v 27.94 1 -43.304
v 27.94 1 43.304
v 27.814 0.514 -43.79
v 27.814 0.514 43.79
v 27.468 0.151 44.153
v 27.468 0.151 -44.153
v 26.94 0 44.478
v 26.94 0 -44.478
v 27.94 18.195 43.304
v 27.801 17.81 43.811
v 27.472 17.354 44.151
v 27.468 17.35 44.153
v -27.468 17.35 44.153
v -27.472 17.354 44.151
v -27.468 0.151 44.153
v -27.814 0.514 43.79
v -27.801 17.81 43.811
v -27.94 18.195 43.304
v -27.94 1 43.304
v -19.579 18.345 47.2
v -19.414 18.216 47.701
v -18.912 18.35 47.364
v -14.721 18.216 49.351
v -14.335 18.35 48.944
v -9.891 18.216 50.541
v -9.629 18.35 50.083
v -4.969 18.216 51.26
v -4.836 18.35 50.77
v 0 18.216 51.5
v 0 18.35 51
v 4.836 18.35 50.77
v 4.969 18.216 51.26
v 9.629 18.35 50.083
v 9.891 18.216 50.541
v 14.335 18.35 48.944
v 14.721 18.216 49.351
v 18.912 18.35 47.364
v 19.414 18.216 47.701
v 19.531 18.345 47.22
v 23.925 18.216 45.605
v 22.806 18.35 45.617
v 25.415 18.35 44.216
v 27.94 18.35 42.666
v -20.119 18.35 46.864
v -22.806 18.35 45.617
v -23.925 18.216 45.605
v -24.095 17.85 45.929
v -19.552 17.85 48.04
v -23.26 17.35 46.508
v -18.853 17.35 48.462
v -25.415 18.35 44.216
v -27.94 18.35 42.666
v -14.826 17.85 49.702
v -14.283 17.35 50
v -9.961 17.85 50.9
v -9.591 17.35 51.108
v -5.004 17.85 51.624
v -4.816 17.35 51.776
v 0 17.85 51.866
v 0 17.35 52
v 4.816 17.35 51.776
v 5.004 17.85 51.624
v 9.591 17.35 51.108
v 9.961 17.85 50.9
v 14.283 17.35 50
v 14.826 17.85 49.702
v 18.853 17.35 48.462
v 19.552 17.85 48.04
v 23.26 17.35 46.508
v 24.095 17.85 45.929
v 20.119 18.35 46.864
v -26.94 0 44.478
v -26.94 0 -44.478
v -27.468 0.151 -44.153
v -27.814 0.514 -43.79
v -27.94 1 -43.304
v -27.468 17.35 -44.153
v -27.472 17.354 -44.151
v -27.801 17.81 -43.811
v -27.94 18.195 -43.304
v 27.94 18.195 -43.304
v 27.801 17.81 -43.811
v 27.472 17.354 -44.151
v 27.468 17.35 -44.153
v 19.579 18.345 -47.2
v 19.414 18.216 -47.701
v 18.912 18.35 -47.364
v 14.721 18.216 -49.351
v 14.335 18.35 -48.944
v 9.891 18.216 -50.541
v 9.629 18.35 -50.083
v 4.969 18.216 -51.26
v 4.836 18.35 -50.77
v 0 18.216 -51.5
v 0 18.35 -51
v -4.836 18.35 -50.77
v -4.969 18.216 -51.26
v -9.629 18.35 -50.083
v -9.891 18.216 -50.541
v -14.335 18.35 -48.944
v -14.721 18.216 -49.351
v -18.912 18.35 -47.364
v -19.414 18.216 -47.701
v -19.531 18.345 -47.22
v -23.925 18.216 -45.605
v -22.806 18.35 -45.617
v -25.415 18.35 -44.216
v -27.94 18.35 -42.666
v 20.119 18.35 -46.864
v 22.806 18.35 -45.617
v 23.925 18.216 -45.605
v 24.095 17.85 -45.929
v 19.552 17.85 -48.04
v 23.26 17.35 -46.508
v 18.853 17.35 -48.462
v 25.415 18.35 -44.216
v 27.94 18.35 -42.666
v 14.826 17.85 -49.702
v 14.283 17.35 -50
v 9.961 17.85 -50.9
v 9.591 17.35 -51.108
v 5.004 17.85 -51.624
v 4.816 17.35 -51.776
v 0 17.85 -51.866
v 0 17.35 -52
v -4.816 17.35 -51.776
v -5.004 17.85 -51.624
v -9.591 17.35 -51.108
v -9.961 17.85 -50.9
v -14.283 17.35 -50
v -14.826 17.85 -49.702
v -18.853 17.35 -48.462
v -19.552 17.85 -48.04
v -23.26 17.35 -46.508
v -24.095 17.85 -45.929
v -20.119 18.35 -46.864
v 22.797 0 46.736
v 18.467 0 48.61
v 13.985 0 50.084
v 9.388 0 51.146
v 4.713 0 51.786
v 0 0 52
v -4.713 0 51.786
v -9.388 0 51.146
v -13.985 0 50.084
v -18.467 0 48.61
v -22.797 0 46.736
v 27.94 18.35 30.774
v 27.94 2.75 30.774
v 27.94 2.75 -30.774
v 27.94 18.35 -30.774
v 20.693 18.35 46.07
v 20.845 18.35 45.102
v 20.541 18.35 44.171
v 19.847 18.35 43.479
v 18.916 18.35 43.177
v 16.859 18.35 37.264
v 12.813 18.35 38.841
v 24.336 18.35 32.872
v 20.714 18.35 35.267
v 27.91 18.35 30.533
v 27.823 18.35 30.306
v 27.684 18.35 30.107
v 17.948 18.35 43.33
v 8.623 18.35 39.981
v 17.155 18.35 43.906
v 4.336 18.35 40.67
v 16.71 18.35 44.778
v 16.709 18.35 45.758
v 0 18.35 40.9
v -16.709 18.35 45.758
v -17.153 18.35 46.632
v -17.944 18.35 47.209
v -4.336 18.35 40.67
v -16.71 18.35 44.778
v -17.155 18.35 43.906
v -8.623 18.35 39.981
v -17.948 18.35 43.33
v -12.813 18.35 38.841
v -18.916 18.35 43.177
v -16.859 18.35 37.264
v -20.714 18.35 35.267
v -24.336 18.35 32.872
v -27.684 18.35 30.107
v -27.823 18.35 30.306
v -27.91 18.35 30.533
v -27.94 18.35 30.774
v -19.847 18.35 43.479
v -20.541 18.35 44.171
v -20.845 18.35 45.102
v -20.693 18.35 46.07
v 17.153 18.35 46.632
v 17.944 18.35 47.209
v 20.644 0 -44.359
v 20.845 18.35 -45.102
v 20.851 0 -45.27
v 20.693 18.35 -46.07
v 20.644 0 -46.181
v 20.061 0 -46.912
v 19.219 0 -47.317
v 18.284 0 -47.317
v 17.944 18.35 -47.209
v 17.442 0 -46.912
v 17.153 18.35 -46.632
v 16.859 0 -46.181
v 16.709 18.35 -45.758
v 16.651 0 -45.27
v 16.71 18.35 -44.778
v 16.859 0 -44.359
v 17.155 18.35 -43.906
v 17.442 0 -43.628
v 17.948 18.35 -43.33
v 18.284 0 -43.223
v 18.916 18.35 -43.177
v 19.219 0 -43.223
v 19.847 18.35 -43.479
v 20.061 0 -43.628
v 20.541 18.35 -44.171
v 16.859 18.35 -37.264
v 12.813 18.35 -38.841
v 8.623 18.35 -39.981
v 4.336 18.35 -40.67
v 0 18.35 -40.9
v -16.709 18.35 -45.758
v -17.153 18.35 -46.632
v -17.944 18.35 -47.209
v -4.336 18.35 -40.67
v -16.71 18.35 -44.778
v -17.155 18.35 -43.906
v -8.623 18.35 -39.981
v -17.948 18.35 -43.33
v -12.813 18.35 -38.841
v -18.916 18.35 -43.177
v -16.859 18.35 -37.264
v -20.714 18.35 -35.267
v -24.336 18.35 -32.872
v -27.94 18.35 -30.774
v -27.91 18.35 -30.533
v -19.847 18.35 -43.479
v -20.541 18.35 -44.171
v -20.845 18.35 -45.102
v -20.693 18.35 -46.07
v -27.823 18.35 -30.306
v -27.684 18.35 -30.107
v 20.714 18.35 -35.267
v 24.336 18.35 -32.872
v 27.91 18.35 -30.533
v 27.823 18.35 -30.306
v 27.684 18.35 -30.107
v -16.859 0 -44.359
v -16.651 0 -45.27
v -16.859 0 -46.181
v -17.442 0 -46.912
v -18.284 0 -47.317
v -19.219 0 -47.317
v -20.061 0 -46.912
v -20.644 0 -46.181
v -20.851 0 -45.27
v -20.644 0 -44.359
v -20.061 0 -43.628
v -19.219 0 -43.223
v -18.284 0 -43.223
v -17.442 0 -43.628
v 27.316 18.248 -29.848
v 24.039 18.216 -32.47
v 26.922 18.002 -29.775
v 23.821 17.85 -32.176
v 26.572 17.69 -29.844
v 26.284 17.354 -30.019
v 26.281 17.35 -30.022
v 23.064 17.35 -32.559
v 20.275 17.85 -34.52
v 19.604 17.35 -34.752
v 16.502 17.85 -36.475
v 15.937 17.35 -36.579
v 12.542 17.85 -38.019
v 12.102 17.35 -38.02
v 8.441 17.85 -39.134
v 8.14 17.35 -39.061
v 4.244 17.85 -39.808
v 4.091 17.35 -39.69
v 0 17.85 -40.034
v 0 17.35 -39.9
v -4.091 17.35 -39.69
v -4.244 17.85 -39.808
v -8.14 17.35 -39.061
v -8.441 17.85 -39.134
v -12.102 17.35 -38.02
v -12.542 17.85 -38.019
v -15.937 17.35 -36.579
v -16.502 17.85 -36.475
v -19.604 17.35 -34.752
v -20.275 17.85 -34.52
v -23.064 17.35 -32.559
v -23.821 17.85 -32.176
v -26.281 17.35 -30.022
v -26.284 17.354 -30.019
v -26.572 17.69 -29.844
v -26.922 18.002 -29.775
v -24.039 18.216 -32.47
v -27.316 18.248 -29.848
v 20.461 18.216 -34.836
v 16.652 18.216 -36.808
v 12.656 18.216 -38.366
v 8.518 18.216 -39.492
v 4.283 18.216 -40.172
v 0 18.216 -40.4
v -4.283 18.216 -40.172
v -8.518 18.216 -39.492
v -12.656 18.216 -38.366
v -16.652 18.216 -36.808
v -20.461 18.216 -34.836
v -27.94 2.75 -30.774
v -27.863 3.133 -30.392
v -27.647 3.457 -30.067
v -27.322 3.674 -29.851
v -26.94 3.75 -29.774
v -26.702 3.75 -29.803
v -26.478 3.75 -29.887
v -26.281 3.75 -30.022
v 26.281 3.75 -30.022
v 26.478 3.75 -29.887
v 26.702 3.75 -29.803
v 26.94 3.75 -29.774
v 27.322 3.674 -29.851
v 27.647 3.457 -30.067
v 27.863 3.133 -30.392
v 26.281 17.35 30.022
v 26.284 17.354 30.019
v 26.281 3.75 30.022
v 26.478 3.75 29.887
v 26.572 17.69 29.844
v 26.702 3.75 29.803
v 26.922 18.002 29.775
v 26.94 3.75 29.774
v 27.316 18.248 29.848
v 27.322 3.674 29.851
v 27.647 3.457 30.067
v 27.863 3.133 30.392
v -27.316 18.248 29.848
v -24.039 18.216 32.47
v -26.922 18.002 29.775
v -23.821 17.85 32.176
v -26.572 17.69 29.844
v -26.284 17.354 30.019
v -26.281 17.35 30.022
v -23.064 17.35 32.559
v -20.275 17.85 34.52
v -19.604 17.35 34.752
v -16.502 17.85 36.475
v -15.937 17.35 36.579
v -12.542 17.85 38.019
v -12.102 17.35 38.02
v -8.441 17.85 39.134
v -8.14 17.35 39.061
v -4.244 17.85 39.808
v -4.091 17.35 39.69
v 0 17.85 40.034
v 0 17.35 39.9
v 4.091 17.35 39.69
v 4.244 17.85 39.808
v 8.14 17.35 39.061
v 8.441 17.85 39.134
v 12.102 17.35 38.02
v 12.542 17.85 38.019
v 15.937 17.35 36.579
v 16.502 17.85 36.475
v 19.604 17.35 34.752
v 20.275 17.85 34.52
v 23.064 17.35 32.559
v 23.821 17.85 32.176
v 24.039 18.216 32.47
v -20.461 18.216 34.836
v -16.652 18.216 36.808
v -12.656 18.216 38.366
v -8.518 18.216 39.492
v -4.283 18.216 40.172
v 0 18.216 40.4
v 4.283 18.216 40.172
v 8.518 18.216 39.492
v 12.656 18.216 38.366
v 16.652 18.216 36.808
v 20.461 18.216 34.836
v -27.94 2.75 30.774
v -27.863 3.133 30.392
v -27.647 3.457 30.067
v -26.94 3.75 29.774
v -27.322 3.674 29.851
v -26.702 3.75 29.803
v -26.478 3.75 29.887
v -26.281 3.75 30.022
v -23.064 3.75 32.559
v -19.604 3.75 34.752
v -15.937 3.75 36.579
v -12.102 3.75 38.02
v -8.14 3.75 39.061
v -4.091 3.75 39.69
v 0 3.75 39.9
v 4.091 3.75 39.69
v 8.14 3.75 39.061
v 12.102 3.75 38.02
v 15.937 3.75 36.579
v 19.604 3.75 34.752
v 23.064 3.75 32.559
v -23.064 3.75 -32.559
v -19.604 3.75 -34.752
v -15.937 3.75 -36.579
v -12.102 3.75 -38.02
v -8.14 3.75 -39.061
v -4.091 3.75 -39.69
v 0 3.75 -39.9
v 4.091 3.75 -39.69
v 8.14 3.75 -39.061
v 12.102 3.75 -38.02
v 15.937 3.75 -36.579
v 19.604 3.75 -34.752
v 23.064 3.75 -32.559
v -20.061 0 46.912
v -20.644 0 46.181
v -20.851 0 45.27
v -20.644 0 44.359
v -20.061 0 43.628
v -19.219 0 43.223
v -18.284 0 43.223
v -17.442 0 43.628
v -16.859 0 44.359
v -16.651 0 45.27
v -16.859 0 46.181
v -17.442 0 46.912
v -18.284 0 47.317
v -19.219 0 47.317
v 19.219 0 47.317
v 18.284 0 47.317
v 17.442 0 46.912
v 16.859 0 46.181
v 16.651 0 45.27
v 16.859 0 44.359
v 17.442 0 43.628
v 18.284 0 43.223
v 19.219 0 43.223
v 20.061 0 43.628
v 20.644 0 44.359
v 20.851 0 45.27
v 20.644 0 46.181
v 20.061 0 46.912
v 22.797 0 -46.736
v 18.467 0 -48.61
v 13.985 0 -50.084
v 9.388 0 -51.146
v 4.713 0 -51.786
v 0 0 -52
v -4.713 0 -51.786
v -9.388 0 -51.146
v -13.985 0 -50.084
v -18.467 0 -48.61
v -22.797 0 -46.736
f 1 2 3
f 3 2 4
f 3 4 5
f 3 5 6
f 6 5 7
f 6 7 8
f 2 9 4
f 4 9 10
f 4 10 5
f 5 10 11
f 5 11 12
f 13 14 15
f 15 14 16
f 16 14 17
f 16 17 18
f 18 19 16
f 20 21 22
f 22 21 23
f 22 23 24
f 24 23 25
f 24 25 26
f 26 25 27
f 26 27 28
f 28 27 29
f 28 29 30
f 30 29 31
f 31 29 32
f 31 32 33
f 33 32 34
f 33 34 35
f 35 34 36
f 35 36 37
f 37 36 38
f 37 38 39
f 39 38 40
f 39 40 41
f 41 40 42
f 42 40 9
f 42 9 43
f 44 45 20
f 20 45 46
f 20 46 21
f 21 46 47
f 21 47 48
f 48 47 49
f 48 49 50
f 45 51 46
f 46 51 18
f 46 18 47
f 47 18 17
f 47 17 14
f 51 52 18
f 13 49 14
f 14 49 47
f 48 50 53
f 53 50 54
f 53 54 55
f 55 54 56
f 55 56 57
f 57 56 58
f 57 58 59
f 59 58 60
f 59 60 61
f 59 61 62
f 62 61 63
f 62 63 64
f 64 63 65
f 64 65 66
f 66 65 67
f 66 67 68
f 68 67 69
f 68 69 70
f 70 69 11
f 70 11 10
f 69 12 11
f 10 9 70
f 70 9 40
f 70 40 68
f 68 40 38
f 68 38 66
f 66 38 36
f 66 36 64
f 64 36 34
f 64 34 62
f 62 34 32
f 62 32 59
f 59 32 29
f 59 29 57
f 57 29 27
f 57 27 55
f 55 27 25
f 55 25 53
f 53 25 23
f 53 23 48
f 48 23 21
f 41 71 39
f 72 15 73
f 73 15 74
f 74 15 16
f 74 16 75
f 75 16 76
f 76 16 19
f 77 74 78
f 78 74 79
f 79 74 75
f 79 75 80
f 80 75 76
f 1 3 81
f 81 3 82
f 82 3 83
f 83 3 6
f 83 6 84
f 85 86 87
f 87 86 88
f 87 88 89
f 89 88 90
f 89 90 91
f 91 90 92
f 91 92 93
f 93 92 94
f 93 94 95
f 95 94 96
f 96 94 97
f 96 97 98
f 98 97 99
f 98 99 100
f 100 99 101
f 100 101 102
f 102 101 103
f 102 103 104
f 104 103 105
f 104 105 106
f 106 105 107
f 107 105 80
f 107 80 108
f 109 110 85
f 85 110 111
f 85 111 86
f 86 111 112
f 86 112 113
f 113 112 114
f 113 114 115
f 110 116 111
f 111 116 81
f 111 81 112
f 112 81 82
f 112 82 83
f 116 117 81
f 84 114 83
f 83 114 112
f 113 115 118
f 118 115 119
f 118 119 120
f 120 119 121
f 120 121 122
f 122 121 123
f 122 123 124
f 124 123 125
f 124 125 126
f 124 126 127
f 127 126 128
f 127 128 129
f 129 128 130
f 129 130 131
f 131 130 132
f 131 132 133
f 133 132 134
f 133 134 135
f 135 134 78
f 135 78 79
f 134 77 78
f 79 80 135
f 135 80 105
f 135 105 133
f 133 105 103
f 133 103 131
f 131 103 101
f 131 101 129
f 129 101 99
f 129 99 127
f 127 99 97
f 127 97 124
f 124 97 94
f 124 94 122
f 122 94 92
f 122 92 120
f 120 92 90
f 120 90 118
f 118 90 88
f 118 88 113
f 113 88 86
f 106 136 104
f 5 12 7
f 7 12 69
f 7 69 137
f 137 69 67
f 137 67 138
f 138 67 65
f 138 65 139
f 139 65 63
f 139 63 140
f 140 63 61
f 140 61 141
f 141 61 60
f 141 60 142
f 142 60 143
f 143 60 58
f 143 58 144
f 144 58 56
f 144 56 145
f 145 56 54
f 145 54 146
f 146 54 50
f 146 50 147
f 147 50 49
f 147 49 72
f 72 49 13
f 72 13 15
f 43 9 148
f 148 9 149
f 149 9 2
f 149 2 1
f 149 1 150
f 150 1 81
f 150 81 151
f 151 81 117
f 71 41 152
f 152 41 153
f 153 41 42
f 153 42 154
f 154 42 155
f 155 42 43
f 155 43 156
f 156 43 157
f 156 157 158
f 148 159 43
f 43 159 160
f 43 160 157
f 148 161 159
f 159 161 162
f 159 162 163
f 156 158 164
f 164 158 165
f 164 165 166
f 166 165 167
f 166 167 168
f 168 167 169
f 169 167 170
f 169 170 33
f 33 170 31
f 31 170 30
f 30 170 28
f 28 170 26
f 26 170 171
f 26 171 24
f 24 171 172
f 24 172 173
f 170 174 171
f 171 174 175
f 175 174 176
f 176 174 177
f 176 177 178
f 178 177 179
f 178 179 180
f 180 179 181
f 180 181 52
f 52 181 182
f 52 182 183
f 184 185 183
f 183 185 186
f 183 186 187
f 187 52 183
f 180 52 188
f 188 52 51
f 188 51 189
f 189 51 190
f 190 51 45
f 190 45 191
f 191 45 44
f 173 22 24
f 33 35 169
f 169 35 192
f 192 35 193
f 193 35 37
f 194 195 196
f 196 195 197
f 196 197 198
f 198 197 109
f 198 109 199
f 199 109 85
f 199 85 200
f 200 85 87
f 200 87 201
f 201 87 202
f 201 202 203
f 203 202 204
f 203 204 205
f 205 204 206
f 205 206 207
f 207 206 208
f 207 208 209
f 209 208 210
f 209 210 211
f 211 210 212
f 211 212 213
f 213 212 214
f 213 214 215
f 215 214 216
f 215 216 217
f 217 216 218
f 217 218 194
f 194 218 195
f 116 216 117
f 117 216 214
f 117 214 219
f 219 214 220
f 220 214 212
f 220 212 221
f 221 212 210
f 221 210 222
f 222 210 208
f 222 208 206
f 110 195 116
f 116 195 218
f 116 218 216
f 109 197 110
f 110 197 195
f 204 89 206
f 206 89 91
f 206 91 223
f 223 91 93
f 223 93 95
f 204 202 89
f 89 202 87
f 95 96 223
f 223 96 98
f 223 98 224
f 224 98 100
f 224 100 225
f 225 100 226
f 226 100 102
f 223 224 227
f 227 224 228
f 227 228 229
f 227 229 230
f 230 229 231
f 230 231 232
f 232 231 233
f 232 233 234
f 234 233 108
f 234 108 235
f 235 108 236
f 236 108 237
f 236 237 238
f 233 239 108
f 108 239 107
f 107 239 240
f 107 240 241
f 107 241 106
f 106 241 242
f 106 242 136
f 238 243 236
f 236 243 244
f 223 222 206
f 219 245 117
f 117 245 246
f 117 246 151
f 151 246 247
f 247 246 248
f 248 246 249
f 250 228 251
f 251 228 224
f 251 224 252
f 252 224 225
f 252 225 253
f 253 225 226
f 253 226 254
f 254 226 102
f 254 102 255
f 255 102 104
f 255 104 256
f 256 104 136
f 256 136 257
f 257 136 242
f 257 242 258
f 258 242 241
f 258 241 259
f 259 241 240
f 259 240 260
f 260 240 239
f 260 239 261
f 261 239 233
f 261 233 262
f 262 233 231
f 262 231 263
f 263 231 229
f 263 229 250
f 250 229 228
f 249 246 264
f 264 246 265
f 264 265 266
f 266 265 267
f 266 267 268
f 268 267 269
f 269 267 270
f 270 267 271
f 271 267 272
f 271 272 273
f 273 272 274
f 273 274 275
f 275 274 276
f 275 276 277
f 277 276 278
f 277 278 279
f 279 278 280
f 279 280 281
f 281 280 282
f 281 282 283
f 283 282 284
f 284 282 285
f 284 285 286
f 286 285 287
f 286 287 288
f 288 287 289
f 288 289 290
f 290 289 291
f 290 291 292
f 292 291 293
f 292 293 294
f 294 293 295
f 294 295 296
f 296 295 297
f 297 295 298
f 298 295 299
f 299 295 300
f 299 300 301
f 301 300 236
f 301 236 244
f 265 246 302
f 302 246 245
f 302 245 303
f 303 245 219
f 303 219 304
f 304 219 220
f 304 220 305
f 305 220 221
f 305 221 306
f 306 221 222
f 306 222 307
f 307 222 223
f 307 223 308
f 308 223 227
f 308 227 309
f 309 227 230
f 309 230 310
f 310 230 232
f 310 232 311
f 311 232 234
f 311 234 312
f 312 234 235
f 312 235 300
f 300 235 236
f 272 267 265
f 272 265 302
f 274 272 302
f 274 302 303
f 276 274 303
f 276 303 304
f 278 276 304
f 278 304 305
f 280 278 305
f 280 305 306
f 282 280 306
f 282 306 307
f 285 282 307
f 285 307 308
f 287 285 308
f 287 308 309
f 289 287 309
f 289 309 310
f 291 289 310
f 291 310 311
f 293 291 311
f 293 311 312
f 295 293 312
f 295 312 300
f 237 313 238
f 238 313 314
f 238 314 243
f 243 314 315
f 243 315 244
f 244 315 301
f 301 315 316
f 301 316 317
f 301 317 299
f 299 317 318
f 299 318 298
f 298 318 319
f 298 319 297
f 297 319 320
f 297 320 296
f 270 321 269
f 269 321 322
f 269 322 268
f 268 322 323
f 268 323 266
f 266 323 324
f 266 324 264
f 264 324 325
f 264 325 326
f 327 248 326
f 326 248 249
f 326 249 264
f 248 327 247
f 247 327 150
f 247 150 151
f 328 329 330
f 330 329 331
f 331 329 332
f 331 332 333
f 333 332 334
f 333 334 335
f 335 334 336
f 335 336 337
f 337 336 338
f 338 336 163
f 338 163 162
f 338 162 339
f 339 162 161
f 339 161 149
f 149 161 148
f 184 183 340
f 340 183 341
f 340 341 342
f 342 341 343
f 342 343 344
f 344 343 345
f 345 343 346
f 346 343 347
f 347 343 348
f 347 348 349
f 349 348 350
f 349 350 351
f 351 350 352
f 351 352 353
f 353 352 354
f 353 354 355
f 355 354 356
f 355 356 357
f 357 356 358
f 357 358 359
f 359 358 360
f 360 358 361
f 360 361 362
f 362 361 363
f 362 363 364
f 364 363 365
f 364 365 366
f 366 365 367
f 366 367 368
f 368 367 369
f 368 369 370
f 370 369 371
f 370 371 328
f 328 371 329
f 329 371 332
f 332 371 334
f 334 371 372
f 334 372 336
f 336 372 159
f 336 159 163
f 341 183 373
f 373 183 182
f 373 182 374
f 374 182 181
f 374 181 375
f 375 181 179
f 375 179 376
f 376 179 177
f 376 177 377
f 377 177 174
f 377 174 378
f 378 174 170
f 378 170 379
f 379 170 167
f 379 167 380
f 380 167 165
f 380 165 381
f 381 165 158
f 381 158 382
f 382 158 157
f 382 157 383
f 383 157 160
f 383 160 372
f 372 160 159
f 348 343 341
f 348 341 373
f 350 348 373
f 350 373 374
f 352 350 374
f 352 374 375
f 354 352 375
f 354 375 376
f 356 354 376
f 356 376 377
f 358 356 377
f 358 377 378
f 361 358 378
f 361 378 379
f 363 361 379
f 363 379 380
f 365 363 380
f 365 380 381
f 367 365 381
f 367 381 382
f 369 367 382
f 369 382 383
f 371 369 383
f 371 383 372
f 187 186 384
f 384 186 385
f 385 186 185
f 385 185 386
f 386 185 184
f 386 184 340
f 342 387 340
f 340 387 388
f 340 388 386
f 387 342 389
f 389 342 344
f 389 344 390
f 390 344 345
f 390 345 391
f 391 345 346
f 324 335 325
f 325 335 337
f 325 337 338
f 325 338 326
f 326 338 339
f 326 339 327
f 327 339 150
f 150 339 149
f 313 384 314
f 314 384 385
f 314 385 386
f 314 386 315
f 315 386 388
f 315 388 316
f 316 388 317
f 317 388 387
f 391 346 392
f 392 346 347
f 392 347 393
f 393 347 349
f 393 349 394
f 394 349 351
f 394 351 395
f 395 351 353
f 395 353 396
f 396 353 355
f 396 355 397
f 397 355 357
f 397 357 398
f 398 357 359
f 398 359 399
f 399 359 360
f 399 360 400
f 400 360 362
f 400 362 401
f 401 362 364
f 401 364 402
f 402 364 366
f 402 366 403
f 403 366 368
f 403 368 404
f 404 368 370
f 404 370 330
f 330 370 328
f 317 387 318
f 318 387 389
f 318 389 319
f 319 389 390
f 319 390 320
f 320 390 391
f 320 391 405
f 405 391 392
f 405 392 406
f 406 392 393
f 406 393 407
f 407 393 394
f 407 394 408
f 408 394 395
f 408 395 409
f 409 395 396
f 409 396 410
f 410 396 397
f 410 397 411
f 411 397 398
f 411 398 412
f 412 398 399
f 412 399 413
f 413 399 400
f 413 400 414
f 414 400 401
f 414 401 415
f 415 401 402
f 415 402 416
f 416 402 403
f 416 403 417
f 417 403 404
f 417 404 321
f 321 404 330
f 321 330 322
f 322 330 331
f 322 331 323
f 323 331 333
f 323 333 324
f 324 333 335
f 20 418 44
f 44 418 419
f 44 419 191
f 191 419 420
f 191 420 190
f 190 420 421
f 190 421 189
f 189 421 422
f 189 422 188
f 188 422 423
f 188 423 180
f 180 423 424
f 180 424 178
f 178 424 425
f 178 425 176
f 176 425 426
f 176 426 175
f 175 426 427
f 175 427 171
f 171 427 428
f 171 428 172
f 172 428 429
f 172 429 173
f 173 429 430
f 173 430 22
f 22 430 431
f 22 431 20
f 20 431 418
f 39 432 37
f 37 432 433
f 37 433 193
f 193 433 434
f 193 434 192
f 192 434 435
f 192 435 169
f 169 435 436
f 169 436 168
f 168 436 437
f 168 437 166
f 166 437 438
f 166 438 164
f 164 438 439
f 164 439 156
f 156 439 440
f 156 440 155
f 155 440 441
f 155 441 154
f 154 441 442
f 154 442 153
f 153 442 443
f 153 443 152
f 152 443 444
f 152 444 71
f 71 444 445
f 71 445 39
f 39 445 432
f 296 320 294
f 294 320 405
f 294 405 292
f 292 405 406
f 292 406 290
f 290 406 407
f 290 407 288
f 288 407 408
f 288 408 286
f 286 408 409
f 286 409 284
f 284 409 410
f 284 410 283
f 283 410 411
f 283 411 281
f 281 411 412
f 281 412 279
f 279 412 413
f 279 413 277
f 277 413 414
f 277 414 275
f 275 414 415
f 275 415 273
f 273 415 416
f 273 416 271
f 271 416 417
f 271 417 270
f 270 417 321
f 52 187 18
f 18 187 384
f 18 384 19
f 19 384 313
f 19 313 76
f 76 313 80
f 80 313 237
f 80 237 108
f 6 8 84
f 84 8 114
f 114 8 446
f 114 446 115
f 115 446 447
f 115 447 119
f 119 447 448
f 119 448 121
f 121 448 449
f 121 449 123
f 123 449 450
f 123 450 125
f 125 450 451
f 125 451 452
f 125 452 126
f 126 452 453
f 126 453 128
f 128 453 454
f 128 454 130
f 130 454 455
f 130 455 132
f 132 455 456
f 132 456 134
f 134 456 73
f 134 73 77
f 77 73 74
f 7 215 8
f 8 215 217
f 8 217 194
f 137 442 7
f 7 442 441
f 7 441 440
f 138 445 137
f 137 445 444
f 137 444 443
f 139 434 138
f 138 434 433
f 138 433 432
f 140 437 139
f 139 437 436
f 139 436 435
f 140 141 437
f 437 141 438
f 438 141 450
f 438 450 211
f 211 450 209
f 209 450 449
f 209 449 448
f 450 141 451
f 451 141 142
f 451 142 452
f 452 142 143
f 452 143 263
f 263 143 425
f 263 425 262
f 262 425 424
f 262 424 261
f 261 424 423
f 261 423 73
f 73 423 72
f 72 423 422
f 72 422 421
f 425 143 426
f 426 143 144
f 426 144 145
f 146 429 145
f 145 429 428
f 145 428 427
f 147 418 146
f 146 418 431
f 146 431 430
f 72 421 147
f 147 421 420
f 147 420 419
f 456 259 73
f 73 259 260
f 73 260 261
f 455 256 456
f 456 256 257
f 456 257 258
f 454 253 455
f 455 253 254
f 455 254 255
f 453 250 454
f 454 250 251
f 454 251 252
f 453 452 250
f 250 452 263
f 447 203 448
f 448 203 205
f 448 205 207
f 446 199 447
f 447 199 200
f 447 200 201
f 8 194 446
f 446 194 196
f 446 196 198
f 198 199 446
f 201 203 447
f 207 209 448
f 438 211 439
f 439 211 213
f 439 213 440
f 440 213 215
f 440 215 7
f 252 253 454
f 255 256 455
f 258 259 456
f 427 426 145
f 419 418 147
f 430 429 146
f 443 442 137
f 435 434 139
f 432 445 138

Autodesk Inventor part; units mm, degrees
ref_plane "YZ Plane" through (0, 0, 0) normal (1, 0, 0) x (0, 1, 0)
ref_plane "XZ Plane" through (0, 0, 0) normal (0, 1, 0) x (-1, 0, 0)
ref_plane "XY Plane" through (0, 0, 0) normal (0, 0, 1) x (1, 0, 0)
sketch "スケッチ1" plane through (0, 0, 0) normal (0, 1, 0) x (-1, 0, 0)
  circle A0 centre (0, 0) radius 52
  line L0 (27.9396, 43.8564) -> (27.9396, -43.8564)
  line L1 (27.9396, -43.8564) -> (0, 0)
  line L2 (0, 0) -> (52, 0)
  line L3 (27.9396, 43.8564) -> (0, 0)
  line L4 (0, 52) -> (0, -52)
  line L5 (-27.9396, 43.8564) -> (-27.9396, -43.8564)
  line L6 (-27.9396, -43.8564) -> (0, 0)
  line L7 (-27.9396, 43.8564) -> (0, 0)
  dimension "d0" = 104
  dimension "d1" = 57.5
extrude "押し出し1" add sketch "スケッチ1" along normal blind 18.35 contours L3 L4 A0 | L0 L2 L3 | L1 L2 L0 | A0 L4 L1 | L4 L7 A0 | L4 A0 L6 | L6 L5 L7
sketch "スケッチ2" plane through (0, 18.35, 0) normal (0, 1, 0) x (1, 0, 0)
  circle A0 centre (0, 0) radius 39.9
  dimension "d4" = 79.8
extrude "押し出し2" cut sketch "スケッチ2" against normal blind 14.6
sketch "スケッチ3" plane through (0, 0, 0) normal (0, -1, 0) x (1, 0, 0)
  line L0 (0, 0) -> (0, 52)
  arc A0 (27.9396, 43.8564) -> (-27.9396, 43.8564) centre (0, 0) ccw projected
  line L1 (0, 0) -> (19.8995, 48.0417)
  line L2 (0, 0) -> (27.9396, 0)
  line L3 (27.9396, -28.4849) -> (27.9396, 28.4849) projected
  point P0 (18.7515, 45.2701)
  point P1 (-18.7515, 45.2701)
  point P2 (18.7515, -45.2701)
  point P3 (-18.7515, -45.2701)
  dimension "d8" = 98
  dimension "d7" = 22.5
hole "穴1" at (18.7515, 0, 45.2701) at (-18.7515, 0, 45.2701) at (-18.7515, 0, -45.2701) at (18.7515, 0, -45.2701) direction (0, 1, 0) diameter 4.2 end through all
fillet "フィレット1" radius 1 16 edges at (0, 18.35, 39.9) (0, 18.35, -39.9) (0, 18.35, 52) (27.9396, 3.75, 0) (27.9396, 0, 0) (27.9396, 11.05, 28.4849) (27.9396, 11.05, -28.4849) (27.9396, 9.175, 43.8564) (-27.9396, 9.175, 43.8564) (-27.9396, 11.05, 28.4849) (-27.9396, 11.05, -28.4849) (27.9396, 9.175, -43.8564) (0, 18.35, -52) (-27.9396, 9.175, -43.8564) (-27.9396, 3.75, 0) (-27.9396, 0, 0)
properties part number "base_part8"
